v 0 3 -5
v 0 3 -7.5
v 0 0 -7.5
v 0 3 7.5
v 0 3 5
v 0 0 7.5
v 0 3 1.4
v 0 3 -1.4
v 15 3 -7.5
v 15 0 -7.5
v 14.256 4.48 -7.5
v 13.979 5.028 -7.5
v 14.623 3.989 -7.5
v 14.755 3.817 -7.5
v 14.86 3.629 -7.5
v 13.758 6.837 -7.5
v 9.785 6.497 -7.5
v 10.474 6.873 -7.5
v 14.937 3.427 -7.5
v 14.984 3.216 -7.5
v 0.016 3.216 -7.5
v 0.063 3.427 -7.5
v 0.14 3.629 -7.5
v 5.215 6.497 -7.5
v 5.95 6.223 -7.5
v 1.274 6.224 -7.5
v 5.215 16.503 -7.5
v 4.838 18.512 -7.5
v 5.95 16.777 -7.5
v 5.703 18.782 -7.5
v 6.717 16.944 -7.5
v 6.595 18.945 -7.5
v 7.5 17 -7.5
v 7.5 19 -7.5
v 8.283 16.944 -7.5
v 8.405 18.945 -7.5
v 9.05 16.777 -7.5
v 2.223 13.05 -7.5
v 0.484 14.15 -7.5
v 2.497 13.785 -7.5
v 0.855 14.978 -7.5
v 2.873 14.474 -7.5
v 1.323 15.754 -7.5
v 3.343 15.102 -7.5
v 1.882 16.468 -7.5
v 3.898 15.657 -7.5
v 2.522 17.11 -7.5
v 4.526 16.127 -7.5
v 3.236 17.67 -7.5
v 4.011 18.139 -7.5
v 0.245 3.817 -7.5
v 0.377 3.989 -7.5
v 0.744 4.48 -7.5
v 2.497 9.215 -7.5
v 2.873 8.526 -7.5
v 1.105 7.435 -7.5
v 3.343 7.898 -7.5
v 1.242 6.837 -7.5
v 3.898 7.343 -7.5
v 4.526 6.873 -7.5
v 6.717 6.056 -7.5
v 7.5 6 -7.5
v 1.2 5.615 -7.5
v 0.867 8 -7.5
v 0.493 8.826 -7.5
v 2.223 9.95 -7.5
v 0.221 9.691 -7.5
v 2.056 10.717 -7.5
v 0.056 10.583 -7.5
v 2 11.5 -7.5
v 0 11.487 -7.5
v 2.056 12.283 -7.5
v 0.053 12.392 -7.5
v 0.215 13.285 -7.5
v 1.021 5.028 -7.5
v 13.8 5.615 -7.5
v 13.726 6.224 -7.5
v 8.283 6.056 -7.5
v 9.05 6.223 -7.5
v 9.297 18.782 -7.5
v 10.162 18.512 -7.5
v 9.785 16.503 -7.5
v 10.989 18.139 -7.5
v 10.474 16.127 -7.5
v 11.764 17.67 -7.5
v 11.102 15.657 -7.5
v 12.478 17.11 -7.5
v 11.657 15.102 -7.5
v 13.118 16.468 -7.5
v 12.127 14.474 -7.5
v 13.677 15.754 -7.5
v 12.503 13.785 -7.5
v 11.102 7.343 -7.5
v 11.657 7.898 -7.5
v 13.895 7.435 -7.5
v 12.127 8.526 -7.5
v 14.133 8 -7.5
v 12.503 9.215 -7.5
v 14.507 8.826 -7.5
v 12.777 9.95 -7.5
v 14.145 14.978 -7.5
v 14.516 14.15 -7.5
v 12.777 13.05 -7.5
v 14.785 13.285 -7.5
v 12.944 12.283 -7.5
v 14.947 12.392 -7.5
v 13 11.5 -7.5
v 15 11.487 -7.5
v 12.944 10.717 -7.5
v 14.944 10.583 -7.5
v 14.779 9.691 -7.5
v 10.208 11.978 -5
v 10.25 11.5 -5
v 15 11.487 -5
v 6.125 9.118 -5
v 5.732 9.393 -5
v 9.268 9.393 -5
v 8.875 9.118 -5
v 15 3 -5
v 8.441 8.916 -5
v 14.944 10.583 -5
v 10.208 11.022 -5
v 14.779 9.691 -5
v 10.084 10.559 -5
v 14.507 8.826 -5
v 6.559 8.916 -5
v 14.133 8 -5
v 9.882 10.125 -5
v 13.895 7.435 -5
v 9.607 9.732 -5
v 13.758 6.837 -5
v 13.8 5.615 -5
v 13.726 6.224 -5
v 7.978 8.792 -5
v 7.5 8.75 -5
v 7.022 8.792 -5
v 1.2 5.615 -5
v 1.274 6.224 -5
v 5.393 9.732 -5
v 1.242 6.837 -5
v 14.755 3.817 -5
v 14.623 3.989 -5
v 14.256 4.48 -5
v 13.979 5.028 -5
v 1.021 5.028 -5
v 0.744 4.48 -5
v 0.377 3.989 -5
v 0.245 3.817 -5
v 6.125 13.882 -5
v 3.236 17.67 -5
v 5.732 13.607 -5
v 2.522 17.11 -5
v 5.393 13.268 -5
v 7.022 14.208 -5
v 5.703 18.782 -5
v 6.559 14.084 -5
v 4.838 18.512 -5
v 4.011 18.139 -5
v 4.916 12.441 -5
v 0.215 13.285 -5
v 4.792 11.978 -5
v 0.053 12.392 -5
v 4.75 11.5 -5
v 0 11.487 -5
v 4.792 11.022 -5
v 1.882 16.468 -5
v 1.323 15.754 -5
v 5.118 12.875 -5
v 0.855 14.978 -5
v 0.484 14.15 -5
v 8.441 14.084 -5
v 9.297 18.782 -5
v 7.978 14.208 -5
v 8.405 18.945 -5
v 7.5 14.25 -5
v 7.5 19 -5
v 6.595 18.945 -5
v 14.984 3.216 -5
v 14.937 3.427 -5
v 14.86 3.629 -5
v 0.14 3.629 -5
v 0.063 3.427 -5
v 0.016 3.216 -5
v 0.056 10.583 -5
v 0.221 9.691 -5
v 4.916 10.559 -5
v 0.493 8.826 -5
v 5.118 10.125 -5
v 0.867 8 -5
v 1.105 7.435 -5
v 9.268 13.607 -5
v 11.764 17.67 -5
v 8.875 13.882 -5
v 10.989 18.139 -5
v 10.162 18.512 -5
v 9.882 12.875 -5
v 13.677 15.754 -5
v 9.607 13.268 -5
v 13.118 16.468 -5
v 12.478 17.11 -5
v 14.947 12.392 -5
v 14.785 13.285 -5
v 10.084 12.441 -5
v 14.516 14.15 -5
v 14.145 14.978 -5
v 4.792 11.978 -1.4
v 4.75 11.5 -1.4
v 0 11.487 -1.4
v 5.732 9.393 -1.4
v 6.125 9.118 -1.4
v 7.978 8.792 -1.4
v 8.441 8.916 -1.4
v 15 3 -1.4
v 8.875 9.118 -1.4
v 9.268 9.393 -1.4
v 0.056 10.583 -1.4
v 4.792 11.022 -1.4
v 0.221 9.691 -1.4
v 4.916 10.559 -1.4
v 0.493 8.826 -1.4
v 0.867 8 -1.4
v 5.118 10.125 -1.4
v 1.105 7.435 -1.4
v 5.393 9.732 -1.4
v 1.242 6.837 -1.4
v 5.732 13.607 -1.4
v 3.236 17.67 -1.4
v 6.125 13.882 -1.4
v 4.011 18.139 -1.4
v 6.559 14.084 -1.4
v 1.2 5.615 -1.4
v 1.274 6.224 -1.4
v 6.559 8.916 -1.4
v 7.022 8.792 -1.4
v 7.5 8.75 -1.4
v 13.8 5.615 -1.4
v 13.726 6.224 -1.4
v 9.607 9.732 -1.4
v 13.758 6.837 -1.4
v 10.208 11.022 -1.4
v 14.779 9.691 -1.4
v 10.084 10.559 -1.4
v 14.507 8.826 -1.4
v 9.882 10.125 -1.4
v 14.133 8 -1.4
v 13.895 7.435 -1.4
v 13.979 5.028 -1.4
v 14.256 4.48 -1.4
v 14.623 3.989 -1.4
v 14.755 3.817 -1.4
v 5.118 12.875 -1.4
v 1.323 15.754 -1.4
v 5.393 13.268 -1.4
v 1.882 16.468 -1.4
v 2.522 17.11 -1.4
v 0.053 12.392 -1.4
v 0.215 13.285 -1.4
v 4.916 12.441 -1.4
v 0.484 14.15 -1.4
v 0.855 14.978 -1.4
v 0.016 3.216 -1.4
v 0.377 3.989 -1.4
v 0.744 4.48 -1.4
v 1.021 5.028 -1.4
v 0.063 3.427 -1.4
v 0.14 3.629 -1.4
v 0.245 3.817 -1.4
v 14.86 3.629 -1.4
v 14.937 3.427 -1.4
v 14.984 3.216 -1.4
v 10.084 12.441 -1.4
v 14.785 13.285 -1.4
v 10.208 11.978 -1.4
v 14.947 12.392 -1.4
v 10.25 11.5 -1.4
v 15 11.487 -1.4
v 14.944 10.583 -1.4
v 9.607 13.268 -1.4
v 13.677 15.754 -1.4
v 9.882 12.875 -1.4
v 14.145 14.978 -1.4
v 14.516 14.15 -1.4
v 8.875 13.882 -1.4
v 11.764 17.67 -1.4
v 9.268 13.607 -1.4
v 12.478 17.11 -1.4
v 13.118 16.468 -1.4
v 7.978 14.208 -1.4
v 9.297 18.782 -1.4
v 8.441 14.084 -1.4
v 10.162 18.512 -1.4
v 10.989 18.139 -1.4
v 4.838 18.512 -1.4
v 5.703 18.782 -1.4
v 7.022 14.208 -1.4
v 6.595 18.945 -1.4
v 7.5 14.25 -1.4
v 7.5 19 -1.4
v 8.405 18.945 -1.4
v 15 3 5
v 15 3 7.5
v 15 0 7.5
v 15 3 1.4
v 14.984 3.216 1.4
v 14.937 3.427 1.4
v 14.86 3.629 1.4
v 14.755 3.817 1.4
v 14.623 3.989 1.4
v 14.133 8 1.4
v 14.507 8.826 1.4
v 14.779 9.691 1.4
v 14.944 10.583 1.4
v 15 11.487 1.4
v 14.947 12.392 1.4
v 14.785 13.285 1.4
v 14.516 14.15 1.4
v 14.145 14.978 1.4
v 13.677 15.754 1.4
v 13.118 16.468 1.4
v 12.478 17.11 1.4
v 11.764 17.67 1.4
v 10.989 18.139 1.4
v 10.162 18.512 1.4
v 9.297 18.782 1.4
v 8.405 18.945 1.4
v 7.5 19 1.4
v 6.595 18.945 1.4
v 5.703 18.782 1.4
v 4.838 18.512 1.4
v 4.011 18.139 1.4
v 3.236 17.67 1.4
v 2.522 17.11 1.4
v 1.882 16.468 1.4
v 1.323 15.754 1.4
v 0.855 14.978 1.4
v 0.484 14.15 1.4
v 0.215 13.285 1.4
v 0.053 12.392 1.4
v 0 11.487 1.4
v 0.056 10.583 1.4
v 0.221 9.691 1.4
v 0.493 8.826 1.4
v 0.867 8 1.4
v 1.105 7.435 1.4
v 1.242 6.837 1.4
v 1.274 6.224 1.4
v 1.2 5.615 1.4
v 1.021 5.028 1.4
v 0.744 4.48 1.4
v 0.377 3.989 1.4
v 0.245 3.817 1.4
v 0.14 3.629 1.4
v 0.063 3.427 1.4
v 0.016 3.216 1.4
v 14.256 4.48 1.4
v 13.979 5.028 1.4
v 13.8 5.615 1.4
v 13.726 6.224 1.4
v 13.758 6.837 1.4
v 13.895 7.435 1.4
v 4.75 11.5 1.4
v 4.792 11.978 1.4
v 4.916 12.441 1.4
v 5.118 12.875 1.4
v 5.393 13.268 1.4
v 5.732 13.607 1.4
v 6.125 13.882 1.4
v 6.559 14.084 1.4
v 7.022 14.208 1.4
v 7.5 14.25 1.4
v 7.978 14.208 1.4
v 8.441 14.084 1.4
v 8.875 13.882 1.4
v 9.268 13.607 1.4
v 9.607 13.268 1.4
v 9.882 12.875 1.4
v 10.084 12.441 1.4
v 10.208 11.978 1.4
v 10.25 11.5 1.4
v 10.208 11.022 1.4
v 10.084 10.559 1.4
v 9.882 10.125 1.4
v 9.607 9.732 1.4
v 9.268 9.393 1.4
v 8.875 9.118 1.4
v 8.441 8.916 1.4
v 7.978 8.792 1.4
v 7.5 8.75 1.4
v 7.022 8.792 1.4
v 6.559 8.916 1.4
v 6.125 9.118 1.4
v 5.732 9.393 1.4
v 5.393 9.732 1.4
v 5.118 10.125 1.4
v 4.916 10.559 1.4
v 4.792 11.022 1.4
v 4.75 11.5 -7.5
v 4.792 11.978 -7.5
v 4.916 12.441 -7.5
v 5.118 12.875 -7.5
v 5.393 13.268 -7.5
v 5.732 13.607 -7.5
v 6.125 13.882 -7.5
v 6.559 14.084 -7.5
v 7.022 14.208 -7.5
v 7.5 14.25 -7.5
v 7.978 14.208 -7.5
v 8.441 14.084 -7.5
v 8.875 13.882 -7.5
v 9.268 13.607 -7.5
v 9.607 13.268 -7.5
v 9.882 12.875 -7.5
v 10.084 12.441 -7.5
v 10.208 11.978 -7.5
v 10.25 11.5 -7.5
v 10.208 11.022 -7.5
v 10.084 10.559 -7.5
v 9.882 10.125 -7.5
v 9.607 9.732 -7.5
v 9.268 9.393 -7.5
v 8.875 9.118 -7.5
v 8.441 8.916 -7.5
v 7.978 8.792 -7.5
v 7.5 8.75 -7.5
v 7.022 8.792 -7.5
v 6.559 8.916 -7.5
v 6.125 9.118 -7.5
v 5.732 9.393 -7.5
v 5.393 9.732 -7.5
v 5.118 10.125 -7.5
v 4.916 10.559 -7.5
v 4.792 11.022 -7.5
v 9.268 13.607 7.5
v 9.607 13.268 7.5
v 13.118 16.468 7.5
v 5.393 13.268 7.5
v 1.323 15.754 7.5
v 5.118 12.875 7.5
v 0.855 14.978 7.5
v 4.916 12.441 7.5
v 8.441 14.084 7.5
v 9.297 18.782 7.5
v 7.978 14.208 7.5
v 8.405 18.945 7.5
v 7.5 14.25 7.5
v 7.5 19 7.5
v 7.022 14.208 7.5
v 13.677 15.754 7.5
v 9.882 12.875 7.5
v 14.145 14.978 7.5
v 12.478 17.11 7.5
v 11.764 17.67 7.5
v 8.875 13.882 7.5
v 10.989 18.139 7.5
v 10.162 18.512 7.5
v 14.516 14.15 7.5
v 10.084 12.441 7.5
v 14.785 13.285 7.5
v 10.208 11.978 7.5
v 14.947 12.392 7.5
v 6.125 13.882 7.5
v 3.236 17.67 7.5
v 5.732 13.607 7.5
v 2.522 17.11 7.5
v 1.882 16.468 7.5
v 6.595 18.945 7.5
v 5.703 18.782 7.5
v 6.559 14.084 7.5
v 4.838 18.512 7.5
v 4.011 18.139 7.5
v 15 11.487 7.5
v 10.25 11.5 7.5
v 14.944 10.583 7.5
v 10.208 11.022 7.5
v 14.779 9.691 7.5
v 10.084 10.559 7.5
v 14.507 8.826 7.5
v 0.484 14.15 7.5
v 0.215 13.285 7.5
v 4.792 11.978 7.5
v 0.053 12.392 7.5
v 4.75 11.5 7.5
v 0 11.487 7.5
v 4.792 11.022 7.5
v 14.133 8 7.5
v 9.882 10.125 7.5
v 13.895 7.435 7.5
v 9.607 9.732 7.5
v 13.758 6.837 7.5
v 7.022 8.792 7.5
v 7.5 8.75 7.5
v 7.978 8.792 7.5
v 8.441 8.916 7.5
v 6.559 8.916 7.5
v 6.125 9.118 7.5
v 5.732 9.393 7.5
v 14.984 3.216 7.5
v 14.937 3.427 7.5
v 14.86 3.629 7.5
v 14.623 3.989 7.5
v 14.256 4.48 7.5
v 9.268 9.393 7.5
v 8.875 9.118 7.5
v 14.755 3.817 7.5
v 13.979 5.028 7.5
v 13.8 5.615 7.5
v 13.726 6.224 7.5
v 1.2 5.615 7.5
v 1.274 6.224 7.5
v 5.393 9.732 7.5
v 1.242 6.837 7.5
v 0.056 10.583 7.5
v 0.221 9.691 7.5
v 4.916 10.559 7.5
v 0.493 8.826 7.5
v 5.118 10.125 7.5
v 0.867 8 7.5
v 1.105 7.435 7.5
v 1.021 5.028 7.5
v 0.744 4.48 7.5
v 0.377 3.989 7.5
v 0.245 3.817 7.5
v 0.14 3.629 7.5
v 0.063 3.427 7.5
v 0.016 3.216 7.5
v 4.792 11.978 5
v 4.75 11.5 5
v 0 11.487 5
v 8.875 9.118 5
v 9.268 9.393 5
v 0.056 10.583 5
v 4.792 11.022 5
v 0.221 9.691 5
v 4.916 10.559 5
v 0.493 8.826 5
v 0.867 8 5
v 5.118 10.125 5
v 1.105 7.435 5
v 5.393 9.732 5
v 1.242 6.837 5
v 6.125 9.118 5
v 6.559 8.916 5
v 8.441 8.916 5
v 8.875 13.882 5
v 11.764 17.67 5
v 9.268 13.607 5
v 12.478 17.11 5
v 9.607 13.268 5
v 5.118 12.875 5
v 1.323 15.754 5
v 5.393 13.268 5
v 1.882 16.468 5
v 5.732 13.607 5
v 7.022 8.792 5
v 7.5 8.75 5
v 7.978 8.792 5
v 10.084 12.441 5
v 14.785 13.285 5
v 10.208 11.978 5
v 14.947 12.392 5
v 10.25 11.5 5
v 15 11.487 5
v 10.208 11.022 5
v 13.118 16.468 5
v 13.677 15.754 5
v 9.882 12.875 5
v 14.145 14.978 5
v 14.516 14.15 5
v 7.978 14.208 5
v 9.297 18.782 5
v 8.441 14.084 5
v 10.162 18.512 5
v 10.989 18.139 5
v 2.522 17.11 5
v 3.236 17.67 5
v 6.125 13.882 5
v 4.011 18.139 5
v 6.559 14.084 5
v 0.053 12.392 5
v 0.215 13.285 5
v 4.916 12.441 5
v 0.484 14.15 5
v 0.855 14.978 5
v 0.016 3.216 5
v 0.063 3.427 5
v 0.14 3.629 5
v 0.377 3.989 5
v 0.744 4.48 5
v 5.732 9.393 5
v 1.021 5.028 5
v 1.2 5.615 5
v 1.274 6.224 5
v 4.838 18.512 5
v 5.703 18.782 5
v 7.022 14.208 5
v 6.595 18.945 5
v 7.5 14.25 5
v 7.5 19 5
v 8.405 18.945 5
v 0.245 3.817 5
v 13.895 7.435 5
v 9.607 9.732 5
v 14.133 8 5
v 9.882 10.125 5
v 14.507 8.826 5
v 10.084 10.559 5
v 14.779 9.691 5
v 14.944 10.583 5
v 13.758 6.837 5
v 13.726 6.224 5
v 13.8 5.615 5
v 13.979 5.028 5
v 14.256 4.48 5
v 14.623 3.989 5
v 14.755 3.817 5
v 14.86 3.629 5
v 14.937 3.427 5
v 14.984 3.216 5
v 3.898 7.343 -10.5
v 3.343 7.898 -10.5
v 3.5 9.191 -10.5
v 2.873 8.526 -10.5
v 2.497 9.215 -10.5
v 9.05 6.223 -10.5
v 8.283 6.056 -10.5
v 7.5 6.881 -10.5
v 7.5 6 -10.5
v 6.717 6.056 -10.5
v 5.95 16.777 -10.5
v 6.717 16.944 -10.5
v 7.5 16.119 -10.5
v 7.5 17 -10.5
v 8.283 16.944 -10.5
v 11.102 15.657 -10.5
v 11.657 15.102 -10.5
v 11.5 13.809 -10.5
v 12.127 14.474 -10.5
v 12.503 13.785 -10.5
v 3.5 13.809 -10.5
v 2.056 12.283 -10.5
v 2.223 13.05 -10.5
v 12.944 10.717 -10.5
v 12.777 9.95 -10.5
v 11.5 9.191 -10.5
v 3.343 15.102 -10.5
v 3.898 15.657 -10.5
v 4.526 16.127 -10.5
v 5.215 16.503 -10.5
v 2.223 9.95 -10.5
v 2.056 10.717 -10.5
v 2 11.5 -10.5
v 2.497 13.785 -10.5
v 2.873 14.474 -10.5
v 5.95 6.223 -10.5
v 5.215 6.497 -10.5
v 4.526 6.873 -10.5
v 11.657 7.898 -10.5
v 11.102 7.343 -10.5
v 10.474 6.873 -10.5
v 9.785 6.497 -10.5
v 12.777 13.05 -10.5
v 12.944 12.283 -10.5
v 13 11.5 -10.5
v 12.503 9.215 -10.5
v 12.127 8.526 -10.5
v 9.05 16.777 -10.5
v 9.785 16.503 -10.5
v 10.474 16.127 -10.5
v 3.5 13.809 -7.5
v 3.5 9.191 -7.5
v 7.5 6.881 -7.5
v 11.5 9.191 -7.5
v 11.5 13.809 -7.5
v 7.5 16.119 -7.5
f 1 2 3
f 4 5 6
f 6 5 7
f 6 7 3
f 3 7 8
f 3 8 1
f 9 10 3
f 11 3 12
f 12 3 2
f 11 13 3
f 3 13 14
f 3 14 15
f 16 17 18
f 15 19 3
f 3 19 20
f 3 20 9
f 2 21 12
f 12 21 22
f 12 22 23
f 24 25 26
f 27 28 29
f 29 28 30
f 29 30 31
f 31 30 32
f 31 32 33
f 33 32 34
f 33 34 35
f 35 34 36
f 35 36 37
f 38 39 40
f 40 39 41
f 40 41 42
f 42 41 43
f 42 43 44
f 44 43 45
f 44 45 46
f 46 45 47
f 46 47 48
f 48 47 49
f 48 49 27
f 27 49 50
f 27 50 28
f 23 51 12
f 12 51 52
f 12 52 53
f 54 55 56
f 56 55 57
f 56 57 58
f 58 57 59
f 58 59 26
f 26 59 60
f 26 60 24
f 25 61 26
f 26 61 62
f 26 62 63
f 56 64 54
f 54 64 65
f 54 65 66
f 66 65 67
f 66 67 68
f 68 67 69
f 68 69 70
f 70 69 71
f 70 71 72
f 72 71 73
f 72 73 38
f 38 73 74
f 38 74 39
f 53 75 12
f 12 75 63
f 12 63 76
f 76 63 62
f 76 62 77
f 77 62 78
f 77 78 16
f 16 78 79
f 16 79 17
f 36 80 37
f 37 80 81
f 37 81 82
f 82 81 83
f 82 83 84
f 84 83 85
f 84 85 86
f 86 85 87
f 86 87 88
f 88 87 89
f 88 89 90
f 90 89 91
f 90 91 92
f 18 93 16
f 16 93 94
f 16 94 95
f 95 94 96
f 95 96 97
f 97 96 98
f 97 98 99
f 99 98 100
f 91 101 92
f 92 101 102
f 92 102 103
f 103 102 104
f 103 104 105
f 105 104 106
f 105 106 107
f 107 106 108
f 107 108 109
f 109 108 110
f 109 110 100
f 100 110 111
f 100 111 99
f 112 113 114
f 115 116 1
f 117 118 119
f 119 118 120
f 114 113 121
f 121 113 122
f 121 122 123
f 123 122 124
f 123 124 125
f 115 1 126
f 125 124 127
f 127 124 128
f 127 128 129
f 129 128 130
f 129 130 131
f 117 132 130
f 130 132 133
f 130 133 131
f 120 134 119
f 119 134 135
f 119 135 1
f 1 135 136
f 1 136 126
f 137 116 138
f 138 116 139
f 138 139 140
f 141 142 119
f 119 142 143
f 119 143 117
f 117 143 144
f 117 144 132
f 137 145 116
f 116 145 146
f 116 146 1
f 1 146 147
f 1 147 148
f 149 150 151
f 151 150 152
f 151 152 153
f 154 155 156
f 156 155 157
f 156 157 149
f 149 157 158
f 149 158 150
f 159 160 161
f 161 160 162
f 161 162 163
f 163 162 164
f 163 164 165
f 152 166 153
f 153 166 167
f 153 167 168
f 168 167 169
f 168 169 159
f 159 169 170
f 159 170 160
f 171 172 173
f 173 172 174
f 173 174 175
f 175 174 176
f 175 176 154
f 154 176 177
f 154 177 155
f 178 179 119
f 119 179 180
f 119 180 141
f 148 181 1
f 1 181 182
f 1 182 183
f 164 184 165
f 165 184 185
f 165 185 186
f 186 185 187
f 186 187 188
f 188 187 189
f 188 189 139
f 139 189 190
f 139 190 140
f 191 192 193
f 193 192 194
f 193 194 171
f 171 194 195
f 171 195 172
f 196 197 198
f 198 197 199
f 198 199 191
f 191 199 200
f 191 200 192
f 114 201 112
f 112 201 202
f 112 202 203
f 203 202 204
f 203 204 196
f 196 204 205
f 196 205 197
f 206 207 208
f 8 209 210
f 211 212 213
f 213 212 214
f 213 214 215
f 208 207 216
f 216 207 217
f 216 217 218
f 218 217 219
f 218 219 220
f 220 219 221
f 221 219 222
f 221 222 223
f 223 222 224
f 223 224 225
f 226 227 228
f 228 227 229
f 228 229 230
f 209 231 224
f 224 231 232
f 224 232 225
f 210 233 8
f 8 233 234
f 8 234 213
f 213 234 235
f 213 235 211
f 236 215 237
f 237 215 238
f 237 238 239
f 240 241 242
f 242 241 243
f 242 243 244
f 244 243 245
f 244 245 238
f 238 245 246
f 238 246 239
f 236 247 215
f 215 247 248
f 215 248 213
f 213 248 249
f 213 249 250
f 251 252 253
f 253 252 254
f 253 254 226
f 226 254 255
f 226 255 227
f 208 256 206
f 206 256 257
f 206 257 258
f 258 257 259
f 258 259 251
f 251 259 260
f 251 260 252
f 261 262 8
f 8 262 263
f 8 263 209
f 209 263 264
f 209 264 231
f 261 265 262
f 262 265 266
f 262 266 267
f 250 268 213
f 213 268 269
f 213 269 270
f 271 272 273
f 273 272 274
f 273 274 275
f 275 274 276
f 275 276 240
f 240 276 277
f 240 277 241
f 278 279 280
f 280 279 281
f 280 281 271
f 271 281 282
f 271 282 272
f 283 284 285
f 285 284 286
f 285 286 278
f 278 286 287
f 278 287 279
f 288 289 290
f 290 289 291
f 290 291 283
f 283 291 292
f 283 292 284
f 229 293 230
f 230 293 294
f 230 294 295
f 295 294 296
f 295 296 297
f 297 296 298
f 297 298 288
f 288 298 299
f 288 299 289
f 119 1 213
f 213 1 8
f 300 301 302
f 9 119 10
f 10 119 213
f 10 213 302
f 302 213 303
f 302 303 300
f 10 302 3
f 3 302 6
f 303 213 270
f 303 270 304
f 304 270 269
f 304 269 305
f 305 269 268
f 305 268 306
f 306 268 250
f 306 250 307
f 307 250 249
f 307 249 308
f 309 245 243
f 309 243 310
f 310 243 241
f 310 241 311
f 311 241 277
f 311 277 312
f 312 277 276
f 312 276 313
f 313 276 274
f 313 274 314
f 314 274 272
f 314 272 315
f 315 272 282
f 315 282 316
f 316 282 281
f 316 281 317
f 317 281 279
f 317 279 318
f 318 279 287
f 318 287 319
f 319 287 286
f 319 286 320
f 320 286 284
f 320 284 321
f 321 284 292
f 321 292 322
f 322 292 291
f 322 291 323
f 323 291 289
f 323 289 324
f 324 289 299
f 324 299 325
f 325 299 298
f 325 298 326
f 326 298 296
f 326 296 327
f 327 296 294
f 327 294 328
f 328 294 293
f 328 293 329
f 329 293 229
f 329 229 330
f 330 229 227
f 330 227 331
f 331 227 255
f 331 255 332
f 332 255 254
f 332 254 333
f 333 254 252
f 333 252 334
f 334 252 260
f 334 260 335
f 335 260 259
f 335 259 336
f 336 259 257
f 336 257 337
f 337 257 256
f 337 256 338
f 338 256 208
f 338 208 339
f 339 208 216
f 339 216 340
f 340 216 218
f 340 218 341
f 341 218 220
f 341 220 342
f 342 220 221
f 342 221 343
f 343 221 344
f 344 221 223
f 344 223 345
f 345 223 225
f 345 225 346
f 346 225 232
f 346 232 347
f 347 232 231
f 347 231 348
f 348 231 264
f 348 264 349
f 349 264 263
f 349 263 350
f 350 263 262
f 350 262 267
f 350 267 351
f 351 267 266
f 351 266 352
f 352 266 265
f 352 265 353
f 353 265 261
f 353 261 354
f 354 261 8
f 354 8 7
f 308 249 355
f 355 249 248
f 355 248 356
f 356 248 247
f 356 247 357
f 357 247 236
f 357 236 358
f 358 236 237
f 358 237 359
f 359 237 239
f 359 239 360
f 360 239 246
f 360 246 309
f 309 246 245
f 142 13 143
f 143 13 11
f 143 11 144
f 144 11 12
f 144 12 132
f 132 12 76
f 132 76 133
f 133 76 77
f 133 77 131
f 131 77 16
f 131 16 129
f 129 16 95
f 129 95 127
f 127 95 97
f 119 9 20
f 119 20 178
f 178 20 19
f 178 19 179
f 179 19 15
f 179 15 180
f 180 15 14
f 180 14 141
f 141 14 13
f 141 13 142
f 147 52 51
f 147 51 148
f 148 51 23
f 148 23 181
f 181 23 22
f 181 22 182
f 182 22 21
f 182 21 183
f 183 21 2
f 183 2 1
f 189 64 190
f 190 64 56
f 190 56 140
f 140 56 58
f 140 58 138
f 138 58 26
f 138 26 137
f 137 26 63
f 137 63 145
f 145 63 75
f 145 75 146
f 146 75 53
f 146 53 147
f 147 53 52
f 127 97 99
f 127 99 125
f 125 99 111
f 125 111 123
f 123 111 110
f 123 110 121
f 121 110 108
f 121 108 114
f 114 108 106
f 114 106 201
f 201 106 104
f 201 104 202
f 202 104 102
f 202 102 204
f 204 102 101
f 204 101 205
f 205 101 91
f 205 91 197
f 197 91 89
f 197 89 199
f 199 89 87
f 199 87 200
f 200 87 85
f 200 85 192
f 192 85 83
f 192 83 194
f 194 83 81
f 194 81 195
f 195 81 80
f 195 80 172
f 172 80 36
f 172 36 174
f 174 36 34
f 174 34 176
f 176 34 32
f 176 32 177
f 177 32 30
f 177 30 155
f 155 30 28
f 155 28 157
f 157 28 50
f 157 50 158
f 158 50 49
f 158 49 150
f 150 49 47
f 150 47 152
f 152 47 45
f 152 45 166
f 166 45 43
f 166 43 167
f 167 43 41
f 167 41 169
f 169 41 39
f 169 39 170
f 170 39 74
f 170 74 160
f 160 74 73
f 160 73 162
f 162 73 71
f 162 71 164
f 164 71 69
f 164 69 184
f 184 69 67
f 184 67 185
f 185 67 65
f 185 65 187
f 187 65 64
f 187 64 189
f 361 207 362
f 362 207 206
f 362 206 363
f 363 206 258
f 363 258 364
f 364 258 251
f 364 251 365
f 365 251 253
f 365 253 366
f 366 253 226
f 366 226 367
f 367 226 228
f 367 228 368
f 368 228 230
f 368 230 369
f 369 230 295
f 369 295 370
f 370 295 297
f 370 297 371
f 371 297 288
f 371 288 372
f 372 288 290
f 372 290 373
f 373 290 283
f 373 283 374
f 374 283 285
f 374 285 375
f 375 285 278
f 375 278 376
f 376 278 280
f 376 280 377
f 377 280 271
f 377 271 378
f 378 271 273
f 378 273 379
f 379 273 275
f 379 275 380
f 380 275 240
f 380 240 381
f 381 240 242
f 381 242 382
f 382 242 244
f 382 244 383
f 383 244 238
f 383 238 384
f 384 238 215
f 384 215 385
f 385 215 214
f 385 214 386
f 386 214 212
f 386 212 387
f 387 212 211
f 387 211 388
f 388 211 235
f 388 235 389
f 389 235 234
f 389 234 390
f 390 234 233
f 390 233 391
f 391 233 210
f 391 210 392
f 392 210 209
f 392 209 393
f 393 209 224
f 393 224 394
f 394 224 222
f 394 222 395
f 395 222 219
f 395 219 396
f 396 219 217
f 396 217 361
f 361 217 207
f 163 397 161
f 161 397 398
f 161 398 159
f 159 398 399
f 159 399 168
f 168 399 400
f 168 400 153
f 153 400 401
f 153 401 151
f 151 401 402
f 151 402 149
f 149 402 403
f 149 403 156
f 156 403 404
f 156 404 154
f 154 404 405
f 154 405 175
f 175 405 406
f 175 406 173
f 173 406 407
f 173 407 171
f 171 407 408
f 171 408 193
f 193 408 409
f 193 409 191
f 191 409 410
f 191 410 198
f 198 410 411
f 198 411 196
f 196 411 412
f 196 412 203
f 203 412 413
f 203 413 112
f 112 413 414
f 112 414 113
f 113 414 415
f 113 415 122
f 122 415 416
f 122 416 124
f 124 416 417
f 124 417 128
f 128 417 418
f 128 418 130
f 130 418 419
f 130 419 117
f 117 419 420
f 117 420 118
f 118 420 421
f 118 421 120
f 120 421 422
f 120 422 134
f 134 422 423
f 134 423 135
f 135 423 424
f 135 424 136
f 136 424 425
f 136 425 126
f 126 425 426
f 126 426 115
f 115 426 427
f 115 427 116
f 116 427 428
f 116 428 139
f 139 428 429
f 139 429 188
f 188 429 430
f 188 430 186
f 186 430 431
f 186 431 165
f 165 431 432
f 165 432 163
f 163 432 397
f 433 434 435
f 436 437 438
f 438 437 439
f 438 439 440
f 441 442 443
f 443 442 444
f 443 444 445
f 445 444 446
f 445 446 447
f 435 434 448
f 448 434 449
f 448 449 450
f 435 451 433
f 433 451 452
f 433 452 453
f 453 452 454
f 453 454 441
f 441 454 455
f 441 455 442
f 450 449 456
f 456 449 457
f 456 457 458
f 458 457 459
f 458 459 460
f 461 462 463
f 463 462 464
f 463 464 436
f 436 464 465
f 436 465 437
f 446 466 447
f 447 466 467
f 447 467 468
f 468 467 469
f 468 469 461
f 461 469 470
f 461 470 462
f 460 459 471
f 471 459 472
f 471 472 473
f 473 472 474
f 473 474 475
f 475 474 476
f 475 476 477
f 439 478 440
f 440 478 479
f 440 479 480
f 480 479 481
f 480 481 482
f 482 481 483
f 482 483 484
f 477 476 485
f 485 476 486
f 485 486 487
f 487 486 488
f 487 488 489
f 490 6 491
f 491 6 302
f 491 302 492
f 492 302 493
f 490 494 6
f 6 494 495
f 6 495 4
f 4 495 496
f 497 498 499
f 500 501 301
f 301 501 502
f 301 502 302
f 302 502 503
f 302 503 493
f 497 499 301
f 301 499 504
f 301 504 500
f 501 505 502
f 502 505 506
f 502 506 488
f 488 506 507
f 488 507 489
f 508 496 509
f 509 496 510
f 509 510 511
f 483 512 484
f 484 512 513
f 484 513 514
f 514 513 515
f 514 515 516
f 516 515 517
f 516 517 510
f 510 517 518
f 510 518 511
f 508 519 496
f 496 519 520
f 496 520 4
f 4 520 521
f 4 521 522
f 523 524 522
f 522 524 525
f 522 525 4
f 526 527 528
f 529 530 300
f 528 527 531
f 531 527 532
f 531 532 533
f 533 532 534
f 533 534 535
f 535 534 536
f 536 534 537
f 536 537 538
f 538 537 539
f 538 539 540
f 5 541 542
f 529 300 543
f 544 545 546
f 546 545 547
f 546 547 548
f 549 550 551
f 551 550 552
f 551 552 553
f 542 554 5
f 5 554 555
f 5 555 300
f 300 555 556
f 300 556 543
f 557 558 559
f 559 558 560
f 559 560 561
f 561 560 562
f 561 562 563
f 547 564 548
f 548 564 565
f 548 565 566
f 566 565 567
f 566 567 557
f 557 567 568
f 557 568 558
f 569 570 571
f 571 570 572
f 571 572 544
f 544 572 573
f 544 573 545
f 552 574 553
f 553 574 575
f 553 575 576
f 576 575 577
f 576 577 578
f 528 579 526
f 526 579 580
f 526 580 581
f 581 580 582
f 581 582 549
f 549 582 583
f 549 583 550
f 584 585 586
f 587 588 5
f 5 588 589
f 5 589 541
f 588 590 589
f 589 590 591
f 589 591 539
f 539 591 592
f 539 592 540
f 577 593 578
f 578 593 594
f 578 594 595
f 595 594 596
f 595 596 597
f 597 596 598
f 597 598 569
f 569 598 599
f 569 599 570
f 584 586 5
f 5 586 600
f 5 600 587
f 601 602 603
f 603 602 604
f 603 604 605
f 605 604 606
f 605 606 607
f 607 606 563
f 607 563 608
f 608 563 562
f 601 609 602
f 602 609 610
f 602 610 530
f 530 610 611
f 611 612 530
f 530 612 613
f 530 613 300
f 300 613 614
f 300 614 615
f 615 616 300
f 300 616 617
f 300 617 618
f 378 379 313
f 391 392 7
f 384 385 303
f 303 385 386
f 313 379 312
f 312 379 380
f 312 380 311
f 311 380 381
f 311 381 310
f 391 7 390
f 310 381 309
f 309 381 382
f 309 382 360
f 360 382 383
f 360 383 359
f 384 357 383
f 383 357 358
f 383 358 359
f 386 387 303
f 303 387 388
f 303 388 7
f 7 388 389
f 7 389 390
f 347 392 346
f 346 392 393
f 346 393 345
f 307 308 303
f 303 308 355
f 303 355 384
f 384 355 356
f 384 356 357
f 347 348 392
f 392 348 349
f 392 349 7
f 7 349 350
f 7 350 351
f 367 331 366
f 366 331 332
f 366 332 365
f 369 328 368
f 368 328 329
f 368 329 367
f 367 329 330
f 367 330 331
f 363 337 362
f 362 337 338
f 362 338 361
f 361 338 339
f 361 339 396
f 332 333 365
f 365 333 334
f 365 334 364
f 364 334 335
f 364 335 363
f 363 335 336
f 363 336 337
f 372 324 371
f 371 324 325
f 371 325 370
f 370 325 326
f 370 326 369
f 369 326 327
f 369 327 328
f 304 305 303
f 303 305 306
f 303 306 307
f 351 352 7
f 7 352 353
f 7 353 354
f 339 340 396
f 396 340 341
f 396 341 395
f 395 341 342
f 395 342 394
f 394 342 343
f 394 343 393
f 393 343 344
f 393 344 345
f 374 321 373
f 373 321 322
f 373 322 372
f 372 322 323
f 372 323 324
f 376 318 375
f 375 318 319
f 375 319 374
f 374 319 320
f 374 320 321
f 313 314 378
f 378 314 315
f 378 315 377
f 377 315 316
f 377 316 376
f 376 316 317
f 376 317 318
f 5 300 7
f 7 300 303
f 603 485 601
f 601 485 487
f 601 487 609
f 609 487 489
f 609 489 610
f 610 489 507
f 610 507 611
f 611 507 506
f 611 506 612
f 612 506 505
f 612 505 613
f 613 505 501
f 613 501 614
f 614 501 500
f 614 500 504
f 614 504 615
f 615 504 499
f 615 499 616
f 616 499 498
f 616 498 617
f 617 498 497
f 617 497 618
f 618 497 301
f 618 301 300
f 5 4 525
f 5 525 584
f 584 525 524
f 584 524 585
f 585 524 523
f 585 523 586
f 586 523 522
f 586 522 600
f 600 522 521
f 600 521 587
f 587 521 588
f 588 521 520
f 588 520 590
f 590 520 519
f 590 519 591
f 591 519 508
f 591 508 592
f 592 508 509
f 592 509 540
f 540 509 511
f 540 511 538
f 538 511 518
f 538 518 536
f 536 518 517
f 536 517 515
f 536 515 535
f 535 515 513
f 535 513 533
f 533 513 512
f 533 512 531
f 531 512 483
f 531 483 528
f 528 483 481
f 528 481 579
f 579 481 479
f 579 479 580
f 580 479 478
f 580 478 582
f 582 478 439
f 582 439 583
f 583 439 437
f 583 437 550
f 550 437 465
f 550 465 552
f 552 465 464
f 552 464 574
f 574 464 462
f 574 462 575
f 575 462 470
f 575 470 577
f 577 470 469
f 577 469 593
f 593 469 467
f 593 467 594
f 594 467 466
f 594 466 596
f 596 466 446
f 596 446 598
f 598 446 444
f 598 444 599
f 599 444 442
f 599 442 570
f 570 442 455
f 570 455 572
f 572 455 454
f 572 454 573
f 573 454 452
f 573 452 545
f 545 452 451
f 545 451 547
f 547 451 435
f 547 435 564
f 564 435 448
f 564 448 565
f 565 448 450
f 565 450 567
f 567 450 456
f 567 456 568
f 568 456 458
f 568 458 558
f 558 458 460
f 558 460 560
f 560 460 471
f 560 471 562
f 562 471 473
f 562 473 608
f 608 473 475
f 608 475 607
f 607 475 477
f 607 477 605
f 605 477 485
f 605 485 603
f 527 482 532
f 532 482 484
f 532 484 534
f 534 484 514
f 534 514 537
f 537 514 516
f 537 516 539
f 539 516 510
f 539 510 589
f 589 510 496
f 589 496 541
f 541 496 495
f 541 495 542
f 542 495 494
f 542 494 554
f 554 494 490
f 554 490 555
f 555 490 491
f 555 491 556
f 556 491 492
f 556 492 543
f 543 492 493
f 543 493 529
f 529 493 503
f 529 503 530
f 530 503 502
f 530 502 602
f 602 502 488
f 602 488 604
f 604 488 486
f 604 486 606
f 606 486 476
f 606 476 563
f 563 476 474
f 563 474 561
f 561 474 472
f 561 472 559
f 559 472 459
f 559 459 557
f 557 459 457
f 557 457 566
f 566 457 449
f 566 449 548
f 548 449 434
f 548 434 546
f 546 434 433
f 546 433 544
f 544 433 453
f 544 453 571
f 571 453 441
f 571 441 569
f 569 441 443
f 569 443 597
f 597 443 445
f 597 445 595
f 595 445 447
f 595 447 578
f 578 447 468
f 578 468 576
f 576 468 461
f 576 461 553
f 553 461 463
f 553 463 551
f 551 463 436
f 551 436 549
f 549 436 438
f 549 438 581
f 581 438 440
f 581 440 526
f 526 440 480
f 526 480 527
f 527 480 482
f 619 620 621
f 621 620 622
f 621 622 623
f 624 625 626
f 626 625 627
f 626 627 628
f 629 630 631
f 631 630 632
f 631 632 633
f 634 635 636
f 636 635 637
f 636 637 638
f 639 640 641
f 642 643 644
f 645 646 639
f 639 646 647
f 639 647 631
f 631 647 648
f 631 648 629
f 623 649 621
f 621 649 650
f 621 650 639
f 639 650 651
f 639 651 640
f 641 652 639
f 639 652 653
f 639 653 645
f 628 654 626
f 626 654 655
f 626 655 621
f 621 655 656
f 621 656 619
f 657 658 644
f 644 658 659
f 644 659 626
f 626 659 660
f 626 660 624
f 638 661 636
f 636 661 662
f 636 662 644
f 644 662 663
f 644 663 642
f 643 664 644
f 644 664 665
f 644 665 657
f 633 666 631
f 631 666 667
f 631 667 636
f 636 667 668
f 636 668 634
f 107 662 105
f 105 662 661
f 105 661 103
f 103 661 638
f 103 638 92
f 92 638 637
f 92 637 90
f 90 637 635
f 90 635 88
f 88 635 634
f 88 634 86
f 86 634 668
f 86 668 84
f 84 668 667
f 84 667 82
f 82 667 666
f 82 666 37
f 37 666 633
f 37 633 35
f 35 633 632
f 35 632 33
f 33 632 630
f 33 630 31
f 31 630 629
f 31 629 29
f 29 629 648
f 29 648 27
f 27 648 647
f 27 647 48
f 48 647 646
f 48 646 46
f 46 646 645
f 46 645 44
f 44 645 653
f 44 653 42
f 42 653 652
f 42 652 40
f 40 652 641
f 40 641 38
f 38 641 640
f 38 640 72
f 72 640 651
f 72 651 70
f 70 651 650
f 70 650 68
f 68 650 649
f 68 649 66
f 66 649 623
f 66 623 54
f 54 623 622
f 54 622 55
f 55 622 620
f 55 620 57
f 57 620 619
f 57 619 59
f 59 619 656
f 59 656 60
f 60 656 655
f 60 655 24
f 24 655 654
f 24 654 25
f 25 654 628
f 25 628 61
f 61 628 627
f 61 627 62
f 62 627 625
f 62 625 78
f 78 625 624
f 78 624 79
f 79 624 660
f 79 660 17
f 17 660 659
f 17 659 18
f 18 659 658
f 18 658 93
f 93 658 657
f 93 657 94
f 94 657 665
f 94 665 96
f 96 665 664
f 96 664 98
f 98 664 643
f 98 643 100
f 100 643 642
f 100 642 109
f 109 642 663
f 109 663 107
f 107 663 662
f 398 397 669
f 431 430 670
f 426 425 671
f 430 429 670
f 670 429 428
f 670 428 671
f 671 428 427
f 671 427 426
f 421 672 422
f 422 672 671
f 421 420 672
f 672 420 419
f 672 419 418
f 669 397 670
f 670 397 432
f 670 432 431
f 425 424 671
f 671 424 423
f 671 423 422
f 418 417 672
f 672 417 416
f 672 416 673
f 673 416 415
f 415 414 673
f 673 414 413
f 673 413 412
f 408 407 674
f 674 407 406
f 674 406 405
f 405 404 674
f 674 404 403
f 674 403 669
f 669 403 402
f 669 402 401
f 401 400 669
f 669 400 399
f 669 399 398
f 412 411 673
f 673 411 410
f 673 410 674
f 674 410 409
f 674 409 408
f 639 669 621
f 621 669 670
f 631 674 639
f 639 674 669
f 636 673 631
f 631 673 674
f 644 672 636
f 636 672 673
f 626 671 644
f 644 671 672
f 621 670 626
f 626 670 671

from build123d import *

# Parameters (mm, degrees)
SKETCH1_W               = 15
SKETCH1_H               = 7.5
BOSS_EXTRUDE_BASE_DEPTH = 3
SKETCH2_W               = 15
SKETCH2_H               = 2.5
SKETCH2_H_2             = 1.4
BOSS_EXTRUDE2_DEPTH     = 16
CUT_EXTRUDE1_DEPTH      = 26.342651795
SKETCH6_R               = 2.75
CUT_EXTRUDE_HOLE_DEPTH  = 26.342651795
SKETCH7_R               = 5.5
BOSS_EXTRUDE4_DEPTH     = 3
CUT_EXTRUDE4_DEPTH      = 3


with BuildPart() as part:
    # Sketch1 → Boss-Extrude - Base (new body)
    with BuildSketch(Plane(origin=(0, 0, 0), x_dir=(1, 0, 0), z_dir=(0, 1, 0))):
        with Locations((7.5, 3.75)):
            Rectangle(SKETCH1_W, SKETCH1_H)
    extrude(amount=BOSS_EXTRUDE_BASE_DEPTH)

    # Sketch2 → Boss-Extrude2 (add)
    with BuildSketch(Plane(origin=(0, 3, 0), x_dir=(1, 0, 0), z_dir=(0, 1, 0))):
        with Locations((7.5, 6.25)):
            Rectangle(SKETCH2_W, SKETCH2_H)
        with Locations((7.5, 0.7)):
            Rectangle(SKETCH2_W, SKETCH2_H_2)
    extrude(amount=BOSS_EXTRUDE2_DEPTH)

    # Sketch4 → Cut-Extrude1 (cut, through all)
    with BuildSketch(Plane(origin=(0, 0, -7.5), x_dir=(-1, 0, 0), z_dir=(0, 0, -1))):
        with BuildLine():
            Line((0, 3), (3.144969959, 3))
            Line((3.144969959, 3), (3.144969959, 20.655431795))
            Line((3.144969959, 20.655431795), (-18.154935256, 20.655431795))
            Line((-18.154935256, 20.655431795), (-18.154935256, 3))
            Line((-18.154935256, 3), (-15, 3))
            ThreePointArc((-15, 3), (-14.902566102, 3.529038543), (-14.623050239, 3.988653628))
            ThreePointArc((-14.623050239, 3.988653628), (-13.75, 5.91762732), (-14.133249581, 8))
            ThreePointArc((-14.133249581, 8), (-7.5, 19), (-0.866750419, 8))
            ThreePointArc((-0.866750419, 8), (-1.25, 5.91762732), (-0.376949761, 3.988653628))
            ThreePointArc((-0.376949761, 3.988653628), (-0.097433898, 3.529038543), (0, 3))
        make_face()
    extrude(amount=-CUT_EXTRUDE1_DEPTH, mode=Mode.SUBTRACT)

    # Sketch6 → Cut-Extrude - Hole (cut, through all)
    with BuildSketch(Plane(origin=(0, 0, -7.5), x_dir=(-1, 0, 0), z_dir=(0, 0, -1))):
        with Locations((-7.5, 11.5)):
            Circle(SKETCH6_R)
    extrude(amount=-CUT_EXTRUDE_HOLE_DEPTH, mode=Mode.SUBTRACT)

    # Mirror1: part across plane


with BuildPart() as part_1:
    add(part.part)
    add(part.part.mirror(Plane(origin=(0, 3, 0), x_dir=(1, 0, 0), z_dir=(0, 0, -1))))

    # Sketch7 → Boss-Extrude4 (add)
    with BuildSketch(Plane(origin=(0, 0, -7.5), x_dir=(-1, 0, 0), z_dir=(0, 0, -1))):
        with Locations((-7.5, 11.5)):
            Circle(SKETCH7_R)
    extrude(amount=BOSS_EXTRUDE4_DEPTH)

    # Sketch8 → Cut-Extrude4 (cut)
    with BuildSketch(Plane(origin=(0, 0, -10.5), x_dir=(-1, 0, 0), z_dir=(0, 0, -1))):
        Polygon((-3.5, 9.190598923), (-3.5, 13.809401077), (-7.5, 16.118802154), (-11.5, 13.809401077), (-11.5, 9.190598923), (-7.5, 6.881197846), align=None)
    extrude(amount=-CUT_EXTRUDE4_DEPTH, mode=Mode.SUBTRACT)


solid = part_1.part
